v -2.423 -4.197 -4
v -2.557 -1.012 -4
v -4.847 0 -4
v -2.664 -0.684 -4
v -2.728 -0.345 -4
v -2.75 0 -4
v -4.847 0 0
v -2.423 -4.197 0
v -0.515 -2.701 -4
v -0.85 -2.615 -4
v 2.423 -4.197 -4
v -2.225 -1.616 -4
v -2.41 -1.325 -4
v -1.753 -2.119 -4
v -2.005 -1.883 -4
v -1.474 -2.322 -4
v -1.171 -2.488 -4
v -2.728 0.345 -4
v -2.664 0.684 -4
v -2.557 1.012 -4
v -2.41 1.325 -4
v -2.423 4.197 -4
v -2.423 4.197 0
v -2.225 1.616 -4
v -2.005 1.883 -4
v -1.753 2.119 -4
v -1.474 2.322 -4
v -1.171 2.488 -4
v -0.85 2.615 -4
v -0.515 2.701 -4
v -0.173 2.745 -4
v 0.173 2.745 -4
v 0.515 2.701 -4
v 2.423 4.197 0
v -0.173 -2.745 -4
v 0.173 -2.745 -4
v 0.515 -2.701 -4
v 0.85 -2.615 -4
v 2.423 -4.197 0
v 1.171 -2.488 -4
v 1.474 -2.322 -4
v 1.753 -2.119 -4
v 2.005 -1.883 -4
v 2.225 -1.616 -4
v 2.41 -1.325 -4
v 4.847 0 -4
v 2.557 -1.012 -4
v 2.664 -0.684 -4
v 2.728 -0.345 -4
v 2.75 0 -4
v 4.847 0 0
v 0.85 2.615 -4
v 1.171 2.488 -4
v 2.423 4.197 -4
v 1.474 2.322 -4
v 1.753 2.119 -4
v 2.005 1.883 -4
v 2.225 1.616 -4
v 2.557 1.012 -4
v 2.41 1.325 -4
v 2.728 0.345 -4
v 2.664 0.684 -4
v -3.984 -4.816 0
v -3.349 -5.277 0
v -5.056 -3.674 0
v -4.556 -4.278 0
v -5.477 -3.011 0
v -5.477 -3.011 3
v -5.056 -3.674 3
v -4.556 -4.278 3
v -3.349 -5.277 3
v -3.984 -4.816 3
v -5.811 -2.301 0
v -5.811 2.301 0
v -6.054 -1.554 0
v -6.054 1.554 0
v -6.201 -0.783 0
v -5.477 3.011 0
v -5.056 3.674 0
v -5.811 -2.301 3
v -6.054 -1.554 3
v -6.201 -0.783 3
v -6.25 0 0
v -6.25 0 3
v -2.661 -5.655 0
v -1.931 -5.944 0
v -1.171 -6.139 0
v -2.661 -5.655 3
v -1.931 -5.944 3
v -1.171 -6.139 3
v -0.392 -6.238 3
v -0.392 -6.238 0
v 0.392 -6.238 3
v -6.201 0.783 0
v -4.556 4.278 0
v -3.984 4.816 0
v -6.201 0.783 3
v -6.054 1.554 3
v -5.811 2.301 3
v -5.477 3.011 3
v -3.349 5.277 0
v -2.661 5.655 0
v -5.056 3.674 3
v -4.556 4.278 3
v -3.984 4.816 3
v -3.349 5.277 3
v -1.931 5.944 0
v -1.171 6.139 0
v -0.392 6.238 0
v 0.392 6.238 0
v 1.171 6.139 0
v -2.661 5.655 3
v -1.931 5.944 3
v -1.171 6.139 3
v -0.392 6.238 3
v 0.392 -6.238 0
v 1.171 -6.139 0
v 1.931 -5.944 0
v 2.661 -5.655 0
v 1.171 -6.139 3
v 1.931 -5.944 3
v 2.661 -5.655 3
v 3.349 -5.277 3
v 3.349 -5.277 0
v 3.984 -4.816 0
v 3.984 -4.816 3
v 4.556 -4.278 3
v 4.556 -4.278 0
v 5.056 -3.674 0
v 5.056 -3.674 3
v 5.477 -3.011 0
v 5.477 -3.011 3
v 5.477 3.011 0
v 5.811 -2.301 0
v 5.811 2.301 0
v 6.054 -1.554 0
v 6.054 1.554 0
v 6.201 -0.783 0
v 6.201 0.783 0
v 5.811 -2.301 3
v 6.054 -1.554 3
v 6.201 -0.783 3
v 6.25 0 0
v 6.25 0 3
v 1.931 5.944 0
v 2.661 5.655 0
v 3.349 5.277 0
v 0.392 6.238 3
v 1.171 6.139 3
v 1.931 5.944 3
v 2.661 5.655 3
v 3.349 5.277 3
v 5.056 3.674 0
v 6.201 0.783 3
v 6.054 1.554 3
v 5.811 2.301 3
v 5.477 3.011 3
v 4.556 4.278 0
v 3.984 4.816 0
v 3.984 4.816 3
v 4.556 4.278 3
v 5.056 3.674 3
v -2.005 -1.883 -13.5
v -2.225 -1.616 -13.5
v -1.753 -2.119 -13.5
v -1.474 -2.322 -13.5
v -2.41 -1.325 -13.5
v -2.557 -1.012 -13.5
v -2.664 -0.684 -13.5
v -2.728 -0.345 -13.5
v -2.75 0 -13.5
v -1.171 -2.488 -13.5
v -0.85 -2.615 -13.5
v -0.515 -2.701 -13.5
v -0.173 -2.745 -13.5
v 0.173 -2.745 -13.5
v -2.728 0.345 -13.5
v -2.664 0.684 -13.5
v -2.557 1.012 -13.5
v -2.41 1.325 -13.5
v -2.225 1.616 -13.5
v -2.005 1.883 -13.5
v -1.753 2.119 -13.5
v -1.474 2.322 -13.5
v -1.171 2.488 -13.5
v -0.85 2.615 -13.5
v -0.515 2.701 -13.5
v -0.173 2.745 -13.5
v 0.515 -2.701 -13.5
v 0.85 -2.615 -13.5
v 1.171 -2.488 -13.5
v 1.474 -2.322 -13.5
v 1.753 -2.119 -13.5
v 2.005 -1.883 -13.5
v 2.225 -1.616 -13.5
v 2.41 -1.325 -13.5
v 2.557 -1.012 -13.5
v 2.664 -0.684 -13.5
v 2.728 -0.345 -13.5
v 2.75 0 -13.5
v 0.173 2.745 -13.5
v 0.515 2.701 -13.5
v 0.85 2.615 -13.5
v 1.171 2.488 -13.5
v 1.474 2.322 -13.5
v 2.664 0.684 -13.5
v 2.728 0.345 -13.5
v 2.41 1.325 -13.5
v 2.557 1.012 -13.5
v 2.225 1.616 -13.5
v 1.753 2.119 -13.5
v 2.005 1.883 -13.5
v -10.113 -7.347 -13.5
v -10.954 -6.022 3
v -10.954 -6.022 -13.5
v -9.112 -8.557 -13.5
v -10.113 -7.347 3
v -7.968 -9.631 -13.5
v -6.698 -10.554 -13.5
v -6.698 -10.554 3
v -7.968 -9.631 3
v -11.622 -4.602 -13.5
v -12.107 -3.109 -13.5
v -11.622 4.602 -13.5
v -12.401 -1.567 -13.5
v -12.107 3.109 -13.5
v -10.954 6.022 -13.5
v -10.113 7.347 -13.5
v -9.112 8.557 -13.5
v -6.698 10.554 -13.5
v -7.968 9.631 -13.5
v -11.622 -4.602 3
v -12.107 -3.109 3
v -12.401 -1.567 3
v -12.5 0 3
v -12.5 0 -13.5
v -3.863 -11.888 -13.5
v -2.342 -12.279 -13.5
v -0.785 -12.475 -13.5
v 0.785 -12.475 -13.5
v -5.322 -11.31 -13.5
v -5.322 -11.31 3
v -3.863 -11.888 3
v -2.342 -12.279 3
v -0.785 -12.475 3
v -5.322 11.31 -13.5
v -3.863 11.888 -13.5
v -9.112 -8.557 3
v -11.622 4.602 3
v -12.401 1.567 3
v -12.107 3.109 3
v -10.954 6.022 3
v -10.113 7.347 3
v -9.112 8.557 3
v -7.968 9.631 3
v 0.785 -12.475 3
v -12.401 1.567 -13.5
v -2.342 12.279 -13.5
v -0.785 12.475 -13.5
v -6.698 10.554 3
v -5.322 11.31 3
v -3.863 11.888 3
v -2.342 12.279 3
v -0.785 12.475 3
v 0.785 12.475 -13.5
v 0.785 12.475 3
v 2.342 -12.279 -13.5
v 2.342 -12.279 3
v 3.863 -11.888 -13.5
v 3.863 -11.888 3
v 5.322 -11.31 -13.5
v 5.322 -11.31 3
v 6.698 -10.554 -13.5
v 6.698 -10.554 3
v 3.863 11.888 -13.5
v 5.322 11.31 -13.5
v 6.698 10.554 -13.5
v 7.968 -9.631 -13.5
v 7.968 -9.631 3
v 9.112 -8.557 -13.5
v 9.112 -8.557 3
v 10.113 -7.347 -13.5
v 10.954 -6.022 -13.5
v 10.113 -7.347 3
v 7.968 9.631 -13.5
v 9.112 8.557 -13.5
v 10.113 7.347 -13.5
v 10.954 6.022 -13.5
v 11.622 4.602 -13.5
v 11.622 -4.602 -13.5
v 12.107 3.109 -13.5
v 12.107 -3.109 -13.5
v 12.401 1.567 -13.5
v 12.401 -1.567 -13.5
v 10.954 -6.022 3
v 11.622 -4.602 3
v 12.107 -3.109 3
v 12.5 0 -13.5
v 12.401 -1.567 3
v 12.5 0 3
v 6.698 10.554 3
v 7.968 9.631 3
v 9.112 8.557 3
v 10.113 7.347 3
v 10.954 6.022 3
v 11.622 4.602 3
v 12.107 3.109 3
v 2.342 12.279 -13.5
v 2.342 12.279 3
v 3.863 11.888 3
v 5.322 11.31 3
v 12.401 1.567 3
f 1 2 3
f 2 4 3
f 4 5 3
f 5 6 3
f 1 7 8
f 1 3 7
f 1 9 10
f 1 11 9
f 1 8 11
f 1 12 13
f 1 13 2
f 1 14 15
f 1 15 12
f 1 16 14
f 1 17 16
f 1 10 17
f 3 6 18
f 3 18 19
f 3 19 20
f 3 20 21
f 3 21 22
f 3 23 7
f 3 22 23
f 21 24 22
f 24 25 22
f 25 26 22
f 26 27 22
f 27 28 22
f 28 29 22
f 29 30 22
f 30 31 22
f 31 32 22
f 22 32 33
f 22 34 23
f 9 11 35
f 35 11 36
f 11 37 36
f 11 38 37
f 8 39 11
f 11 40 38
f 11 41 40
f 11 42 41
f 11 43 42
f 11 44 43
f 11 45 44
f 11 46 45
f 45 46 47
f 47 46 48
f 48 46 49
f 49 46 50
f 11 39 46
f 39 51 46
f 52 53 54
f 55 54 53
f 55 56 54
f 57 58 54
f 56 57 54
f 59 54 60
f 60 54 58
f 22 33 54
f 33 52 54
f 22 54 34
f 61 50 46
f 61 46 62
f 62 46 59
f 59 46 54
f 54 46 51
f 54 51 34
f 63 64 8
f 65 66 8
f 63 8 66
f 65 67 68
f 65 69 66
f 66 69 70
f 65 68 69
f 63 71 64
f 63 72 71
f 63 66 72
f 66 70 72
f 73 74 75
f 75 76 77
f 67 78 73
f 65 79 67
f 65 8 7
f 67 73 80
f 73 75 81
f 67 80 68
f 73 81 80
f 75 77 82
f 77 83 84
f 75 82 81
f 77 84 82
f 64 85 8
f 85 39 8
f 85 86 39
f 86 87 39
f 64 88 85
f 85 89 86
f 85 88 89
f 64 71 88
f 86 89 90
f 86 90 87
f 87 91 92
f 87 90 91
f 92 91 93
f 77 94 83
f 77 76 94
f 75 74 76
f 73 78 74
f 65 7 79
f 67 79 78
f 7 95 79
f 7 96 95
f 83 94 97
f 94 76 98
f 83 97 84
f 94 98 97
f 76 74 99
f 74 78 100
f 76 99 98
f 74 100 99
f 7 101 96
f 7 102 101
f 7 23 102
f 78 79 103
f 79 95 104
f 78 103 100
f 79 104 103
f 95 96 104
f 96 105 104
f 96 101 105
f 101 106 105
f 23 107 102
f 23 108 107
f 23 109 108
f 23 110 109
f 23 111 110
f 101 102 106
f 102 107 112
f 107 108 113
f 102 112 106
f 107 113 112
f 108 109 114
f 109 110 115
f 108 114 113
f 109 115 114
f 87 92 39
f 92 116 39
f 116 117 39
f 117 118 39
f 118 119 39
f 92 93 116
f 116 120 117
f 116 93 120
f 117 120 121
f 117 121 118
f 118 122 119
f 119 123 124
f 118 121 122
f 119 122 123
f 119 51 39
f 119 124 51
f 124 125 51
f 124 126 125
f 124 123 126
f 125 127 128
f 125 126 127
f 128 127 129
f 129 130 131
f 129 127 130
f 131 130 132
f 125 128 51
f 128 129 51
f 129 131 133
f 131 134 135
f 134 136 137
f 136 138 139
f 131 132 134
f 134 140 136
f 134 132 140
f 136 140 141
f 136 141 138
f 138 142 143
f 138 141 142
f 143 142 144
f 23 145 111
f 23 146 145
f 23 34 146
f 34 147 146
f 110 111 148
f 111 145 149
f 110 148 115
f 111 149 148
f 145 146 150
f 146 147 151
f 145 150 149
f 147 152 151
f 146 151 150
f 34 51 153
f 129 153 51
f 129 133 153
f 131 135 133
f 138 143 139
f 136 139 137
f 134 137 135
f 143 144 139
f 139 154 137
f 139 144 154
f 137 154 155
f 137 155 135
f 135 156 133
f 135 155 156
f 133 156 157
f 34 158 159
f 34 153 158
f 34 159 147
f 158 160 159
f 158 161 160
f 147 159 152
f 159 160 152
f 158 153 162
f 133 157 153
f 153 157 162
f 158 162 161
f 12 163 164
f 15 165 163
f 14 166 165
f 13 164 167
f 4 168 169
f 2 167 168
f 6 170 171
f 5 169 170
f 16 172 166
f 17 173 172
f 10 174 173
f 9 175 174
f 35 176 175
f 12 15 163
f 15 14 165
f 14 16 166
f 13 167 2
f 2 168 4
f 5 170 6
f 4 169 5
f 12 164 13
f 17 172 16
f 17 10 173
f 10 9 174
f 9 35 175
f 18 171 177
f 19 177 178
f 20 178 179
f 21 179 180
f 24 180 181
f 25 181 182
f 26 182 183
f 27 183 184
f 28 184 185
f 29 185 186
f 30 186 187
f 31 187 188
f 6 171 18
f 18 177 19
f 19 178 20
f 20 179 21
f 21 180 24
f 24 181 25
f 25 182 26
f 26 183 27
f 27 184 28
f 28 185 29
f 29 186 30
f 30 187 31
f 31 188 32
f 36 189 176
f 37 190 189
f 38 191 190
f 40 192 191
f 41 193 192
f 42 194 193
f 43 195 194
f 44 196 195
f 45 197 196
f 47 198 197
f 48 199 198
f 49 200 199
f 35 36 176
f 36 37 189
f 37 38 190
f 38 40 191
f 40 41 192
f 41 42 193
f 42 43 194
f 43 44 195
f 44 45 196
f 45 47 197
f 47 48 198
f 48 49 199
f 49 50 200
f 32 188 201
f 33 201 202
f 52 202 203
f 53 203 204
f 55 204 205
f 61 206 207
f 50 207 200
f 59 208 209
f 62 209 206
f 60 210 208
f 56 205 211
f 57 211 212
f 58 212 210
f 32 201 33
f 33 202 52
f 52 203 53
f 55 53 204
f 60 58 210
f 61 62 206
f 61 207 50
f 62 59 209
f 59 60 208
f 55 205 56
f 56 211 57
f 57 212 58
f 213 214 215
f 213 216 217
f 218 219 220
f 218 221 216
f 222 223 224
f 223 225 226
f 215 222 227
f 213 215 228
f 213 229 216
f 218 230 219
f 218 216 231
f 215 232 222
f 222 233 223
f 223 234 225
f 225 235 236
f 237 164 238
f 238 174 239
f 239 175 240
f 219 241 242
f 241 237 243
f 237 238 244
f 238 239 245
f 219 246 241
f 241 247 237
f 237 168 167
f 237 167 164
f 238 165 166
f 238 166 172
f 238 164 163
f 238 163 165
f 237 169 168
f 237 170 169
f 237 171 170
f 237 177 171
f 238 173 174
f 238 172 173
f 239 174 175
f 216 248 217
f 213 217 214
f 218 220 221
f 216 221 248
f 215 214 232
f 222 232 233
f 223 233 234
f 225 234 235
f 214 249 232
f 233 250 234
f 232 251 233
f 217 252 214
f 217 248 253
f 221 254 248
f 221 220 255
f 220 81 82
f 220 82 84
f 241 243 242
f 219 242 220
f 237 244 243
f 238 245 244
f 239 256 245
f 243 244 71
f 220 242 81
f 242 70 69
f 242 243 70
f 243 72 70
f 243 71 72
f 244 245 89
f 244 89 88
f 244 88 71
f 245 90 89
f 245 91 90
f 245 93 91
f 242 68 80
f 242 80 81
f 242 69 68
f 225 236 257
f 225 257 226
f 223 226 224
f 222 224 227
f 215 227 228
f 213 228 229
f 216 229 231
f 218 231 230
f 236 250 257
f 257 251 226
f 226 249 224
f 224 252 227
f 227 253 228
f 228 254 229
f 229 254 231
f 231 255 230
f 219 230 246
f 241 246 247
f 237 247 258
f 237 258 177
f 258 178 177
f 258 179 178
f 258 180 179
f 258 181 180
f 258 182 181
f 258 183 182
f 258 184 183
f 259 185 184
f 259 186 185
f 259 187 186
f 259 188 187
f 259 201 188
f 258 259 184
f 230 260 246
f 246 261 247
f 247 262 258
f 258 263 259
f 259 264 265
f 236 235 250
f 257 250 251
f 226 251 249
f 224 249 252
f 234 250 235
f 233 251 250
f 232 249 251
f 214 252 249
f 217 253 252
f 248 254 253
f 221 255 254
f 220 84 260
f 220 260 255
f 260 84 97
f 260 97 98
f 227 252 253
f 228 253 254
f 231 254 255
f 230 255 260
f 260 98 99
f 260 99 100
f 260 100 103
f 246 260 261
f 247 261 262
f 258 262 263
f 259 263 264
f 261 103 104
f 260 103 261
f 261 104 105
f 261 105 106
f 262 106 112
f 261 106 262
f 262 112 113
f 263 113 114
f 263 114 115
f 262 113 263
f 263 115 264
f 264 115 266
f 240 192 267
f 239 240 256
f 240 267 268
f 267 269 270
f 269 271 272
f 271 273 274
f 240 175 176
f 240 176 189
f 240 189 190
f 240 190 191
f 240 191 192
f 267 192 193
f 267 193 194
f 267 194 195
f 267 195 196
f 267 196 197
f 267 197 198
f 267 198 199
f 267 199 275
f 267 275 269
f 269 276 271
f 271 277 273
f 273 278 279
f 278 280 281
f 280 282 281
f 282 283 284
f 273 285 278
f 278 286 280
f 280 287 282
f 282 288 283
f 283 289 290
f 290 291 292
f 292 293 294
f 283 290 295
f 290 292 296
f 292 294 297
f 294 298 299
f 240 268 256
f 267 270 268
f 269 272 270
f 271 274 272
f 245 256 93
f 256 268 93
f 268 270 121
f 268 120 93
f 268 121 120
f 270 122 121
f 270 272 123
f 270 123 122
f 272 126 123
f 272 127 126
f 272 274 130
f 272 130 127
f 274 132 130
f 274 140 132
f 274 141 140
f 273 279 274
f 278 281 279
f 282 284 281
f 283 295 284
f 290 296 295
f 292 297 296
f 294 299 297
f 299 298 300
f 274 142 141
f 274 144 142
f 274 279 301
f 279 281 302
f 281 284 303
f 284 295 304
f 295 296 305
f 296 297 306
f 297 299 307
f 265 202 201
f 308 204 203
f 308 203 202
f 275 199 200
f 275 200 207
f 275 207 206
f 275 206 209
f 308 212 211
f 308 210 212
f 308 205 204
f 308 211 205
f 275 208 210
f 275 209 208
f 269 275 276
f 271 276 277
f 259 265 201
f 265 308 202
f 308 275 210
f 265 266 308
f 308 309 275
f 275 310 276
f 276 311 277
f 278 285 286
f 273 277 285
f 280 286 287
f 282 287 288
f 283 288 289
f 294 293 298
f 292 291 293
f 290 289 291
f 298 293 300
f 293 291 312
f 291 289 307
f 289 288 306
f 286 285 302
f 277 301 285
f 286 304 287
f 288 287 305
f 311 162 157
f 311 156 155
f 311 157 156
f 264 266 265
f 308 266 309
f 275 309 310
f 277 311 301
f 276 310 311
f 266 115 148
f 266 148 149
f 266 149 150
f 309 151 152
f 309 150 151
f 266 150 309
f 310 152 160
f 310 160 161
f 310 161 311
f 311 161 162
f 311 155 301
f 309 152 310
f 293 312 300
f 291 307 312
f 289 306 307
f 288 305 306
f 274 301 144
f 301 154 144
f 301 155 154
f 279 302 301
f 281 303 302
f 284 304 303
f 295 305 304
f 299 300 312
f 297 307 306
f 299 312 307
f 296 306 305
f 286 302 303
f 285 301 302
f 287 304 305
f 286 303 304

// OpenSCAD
$fn = 50;

difference() {
	union() {
		translate(v = [0, 0, -13.5]) {
			cylinder(h = 16.5, r = 12.5);
		}
	}
	union() {
		translate(v = [0, 0, 0]) {
			rotate(a = [0, 0, 0]) {
				difference() {
					union() {
						translate(v = [0, 0, -4]) {
							linear_extrude(height = 4) {
								polygon(points = [[4.8468, 0.0], [2.4234000000000004, 4.197451927062417], [-2.423399999999999, 4.197451927062417], [-4.8468, 5.935618106107392e-16], [-2.423400000000002, -4.197451927062416], [2.423399999999997, -4.197451927062419]]);
							}
						}
					}
					union();
				}
			}
		}
		#cylinder(h = 3, r = 6.25);
		#translate(v = [0, 0, -100.0]) {
			cylinder(h = 200, r = 2.75);
		}
	}
}
